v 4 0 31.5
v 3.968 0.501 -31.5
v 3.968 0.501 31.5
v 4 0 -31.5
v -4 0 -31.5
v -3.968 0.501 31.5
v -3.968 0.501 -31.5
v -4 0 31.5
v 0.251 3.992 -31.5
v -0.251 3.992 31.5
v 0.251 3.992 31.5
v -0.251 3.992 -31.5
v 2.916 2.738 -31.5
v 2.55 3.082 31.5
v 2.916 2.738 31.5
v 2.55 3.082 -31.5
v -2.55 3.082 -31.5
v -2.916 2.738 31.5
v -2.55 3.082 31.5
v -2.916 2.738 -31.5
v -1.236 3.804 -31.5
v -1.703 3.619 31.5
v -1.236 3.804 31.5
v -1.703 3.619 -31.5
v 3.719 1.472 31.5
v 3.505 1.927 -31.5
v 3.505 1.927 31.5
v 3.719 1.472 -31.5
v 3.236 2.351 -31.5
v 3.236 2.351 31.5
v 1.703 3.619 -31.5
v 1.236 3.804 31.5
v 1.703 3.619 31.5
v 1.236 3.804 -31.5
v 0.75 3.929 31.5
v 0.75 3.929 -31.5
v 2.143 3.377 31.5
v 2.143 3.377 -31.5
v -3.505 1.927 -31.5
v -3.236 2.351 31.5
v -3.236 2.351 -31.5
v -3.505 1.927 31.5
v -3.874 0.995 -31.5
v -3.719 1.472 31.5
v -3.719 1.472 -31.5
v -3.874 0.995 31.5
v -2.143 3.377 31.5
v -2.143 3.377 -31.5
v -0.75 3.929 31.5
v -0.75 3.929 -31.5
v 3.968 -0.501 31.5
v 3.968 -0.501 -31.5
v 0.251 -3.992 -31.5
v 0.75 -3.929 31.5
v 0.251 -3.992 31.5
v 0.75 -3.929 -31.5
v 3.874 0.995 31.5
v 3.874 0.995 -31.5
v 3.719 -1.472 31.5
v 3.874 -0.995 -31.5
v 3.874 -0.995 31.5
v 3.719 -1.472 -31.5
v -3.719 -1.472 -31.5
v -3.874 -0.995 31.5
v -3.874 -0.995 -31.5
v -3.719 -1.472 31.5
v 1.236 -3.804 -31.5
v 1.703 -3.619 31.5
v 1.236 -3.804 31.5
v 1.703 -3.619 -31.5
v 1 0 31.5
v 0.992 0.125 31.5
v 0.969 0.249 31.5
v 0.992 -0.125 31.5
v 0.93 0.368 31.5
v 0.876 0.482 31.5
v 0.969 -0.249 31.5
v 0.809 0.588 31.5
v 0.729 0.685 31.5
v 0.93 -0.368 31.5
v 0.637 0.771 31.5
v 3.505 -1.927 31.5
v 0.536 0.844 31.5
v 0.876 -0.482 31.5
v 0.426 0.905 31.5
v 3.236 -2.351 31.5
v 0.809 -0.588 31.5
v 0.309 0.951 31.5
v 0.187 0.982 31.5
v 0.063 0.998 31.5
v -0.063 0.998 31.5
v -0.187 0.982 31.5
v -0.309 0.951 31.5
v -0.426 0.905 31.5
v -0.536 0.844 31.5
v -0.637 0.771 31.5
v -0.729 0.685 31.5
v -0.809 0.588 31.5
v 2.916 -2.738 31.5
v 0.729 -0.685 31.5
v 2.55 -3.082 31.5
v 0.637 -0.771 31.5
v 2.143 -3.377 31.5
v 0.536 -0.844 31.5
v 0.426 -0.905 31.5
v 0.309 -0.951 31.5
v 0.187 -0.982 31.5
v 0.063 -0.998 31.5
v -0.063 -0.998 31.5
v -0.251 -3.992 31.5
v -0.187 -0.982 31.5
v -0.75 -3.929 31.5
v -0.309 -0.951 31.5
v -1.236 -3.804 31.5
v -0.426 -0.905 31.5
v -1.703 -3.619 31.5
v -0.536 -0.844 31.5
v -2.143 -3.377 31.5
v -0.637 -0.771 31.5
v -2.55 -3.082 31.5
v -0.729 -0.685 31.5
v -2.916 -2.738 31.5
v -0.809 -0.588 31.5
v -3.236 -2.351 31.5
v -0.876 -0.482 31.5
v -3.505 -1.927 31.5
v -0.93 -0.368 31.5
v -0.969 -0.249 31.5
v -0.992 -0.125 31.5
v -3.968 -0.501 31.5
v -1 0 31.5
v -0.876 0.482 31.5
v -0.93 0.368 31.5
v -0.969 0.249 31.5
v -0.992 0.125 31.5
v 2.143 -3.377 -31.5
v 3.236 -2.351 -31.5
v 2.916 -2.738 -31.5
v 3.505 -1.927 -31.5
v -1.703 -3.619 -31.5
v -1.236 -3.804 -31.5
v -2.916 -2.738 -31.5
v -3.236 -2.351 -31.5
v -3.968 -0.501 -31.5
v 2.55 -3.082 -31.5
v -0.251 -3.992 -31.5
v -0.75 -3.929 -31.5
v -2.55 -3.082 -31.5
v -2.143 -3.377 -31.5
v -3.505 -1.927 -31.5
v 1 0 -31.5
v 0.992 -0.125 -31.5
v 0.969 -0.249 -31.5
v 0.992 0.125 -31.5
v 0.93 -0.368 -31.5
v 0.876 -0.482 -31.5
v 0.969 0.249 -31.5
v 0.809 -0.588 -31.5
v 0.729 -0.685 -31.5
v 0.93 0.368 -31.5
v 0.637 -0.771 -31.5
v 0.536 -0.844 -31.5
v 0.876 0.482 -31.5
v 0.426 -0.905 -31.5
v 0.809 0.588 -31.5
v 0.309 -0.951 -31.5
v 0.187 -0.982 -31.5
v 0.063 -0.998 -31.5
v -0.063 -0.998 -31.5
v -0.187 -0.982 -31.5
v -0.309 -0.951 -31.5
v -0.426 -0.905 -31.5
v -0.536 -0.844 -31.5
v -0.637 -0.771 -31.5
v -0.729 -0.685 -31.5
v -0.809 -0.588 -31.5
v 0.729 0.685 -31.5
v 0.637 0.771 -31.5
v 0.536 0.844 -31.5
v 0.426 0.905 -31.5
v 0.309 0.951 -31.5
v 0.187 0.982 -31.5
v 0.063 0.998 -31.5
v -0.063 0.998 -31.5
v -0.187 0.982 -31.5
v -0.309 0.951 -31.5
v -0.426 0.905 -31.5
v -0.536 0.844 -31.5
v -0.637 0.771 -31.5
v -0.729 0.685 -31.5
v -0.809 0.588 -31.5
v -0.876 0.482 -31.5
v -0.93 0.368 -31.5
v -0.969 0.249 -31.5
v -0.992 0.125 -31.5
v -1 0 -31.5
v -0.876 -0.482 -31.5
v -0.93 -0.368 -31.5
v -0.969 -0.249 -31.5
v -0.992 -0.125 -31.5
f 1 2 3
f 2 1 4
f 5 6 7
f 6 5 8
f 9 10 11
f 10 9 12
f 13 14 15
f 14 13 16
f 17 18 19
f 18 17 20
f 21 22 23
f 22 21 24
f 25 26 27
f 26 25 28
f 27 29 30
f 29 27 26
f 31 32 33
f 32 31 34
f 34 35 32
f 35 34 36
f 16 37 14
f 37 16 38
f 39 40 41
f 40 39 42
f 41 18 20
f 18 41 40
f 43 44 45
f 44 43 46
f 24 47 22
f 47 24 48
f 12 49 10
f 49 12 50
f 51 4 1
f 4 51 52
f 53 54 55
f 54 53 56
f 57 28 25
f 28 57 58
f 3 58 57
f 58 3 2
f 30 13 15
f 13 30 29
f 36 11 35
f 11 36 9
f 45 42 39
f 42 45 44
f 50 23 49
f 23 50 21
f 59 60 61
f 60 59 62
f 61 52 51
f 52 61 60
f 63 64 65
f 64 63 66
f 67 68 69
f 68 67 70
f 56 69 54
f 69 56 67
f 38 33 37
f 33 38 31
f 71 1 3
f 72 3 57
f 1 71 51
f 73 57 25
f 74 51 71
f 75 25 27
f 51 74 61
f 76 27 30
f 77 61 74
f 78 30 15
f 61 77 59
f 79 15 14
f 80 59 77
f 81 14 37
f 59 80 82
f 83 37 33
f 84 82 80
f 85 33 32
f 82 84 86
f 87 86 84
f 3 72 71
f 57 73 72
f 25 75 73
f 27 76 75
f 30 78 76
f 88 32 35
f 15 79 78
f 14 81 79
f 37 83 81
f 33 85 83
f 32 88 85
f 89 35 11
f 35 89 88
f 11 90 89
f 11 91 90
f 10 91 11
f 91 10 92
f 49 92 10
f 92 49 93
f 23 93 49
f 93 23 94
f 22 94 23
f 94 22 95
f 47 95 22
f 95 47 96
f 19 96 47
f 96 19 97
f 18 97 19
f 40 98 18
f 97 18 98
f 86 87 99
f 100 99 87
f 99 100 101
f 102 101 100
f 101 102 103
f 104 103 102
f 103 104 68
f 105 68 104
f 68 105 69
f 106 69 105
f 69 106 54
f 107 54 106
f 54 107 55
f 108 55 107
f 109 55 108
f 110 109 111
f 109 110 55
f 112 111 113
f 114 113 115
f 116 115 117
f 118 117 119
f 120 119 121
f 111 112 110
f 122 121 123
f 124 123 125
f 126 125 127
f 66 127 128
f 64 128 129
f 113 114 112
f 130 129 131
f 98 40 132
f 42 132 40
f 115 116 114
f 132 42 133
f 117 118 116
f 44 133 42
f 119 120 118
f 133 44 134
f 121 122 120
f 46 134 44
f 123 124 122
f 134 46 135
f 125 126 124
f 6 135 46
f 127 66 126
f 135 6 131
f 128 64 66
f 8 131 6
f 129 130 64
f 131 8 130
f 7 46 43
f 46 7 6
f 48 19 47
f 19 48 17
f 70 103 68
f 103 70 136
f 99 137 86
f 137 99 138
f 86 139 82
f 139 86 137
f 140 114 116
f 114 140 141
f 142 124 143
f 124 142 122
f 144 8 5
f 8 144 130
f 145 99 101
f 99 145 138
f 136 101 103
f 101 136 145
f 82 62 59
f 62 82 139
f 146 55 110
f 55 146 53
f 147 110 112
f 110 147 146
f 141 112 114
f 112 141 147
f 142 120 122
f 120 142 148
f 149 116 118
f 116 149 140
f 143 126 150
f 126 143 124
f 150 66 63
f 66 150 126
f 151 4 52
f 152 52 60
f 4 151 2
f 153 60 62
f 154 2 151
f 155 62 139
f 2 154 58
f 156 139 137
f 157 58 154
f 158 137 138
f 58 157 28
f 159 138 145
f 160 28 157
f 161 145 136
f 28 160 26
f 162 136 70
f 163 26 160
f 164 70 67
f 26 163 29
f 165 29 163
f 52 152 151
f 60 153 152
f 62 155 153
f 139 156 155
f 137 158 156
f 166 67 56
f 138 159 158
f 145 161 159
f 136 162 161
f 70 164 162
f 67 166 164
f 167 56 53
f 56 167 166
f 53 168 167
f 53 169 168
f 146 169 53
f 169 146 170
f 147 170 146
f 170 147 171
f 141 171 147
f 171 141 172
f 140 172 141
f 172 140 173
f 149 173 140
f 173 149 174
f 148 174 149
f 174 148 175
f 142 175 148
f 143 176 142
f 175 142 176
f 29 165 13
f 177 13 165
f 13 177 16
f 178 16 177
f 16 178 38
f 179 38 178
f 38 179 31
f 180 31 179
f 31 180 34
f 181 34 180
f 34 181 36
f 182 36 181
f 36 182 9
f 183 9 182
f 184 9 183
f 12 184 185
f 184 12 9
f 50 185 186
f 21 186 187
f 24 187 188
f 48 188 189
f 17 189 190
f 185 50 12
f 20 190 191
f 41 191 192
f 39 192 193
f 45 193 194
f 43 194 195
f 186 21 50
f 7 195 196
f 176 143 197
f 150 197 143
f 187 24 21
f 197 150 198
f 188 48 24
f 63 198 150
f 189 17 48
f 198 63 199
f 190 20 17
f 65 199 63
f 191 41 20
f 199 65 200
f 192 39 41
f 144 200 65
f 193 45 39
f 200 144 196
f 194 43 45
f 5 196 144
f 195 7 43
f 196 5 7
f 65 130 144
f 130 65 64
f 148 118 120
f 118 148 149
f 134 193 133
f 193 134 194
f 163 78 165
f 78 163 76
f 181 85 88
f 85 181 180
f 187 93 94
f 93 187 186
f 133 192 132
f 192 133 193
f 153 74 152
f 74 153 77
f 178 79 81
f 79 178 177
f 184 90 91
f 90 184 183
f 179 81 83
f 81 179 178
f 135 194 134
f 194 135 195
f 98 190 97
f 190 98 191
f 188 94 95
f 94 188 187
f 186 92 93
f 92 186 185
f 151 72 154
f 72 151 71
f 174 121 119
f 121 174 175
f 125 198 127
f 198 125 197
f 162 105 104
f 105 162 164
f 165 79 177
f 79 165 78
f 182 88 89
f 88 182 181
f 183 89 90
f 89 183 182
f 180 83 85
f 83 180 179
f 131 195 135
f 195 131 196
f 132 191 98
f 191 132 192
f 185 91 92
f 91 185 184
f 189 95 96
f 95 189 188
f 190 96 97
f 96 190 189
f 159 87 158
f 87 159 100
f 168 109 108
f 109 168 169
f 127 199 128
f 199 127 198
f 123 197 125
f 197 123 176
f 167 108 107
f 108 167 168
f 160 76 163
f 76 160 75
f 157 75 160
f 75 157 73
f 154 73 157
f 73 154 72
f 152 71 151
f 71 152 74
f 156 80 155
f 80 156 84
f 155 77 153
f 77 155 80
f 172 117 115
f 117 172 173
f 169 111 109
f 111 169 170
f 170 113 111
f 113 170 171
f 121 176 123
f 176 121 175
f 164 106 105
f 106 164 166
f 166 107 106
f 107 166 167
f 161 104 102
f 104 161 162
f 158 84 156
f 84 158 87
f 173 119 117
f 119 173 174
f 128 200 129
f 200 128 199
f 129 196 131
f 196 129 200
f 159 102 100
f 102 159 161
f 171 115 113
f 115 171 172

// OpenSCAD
$fn = 50;


difference() {
	union() {
		translate(v = [0, 0, -31.5000000000]) {
			cylinder(h = 63, r = 4.0000000000);
		}
	}
	union() {
		translate(v = [0, 0, -100.0000000000]) {
			cylinder(h = 200, r = 1.0000000000);
		}
	}
}
